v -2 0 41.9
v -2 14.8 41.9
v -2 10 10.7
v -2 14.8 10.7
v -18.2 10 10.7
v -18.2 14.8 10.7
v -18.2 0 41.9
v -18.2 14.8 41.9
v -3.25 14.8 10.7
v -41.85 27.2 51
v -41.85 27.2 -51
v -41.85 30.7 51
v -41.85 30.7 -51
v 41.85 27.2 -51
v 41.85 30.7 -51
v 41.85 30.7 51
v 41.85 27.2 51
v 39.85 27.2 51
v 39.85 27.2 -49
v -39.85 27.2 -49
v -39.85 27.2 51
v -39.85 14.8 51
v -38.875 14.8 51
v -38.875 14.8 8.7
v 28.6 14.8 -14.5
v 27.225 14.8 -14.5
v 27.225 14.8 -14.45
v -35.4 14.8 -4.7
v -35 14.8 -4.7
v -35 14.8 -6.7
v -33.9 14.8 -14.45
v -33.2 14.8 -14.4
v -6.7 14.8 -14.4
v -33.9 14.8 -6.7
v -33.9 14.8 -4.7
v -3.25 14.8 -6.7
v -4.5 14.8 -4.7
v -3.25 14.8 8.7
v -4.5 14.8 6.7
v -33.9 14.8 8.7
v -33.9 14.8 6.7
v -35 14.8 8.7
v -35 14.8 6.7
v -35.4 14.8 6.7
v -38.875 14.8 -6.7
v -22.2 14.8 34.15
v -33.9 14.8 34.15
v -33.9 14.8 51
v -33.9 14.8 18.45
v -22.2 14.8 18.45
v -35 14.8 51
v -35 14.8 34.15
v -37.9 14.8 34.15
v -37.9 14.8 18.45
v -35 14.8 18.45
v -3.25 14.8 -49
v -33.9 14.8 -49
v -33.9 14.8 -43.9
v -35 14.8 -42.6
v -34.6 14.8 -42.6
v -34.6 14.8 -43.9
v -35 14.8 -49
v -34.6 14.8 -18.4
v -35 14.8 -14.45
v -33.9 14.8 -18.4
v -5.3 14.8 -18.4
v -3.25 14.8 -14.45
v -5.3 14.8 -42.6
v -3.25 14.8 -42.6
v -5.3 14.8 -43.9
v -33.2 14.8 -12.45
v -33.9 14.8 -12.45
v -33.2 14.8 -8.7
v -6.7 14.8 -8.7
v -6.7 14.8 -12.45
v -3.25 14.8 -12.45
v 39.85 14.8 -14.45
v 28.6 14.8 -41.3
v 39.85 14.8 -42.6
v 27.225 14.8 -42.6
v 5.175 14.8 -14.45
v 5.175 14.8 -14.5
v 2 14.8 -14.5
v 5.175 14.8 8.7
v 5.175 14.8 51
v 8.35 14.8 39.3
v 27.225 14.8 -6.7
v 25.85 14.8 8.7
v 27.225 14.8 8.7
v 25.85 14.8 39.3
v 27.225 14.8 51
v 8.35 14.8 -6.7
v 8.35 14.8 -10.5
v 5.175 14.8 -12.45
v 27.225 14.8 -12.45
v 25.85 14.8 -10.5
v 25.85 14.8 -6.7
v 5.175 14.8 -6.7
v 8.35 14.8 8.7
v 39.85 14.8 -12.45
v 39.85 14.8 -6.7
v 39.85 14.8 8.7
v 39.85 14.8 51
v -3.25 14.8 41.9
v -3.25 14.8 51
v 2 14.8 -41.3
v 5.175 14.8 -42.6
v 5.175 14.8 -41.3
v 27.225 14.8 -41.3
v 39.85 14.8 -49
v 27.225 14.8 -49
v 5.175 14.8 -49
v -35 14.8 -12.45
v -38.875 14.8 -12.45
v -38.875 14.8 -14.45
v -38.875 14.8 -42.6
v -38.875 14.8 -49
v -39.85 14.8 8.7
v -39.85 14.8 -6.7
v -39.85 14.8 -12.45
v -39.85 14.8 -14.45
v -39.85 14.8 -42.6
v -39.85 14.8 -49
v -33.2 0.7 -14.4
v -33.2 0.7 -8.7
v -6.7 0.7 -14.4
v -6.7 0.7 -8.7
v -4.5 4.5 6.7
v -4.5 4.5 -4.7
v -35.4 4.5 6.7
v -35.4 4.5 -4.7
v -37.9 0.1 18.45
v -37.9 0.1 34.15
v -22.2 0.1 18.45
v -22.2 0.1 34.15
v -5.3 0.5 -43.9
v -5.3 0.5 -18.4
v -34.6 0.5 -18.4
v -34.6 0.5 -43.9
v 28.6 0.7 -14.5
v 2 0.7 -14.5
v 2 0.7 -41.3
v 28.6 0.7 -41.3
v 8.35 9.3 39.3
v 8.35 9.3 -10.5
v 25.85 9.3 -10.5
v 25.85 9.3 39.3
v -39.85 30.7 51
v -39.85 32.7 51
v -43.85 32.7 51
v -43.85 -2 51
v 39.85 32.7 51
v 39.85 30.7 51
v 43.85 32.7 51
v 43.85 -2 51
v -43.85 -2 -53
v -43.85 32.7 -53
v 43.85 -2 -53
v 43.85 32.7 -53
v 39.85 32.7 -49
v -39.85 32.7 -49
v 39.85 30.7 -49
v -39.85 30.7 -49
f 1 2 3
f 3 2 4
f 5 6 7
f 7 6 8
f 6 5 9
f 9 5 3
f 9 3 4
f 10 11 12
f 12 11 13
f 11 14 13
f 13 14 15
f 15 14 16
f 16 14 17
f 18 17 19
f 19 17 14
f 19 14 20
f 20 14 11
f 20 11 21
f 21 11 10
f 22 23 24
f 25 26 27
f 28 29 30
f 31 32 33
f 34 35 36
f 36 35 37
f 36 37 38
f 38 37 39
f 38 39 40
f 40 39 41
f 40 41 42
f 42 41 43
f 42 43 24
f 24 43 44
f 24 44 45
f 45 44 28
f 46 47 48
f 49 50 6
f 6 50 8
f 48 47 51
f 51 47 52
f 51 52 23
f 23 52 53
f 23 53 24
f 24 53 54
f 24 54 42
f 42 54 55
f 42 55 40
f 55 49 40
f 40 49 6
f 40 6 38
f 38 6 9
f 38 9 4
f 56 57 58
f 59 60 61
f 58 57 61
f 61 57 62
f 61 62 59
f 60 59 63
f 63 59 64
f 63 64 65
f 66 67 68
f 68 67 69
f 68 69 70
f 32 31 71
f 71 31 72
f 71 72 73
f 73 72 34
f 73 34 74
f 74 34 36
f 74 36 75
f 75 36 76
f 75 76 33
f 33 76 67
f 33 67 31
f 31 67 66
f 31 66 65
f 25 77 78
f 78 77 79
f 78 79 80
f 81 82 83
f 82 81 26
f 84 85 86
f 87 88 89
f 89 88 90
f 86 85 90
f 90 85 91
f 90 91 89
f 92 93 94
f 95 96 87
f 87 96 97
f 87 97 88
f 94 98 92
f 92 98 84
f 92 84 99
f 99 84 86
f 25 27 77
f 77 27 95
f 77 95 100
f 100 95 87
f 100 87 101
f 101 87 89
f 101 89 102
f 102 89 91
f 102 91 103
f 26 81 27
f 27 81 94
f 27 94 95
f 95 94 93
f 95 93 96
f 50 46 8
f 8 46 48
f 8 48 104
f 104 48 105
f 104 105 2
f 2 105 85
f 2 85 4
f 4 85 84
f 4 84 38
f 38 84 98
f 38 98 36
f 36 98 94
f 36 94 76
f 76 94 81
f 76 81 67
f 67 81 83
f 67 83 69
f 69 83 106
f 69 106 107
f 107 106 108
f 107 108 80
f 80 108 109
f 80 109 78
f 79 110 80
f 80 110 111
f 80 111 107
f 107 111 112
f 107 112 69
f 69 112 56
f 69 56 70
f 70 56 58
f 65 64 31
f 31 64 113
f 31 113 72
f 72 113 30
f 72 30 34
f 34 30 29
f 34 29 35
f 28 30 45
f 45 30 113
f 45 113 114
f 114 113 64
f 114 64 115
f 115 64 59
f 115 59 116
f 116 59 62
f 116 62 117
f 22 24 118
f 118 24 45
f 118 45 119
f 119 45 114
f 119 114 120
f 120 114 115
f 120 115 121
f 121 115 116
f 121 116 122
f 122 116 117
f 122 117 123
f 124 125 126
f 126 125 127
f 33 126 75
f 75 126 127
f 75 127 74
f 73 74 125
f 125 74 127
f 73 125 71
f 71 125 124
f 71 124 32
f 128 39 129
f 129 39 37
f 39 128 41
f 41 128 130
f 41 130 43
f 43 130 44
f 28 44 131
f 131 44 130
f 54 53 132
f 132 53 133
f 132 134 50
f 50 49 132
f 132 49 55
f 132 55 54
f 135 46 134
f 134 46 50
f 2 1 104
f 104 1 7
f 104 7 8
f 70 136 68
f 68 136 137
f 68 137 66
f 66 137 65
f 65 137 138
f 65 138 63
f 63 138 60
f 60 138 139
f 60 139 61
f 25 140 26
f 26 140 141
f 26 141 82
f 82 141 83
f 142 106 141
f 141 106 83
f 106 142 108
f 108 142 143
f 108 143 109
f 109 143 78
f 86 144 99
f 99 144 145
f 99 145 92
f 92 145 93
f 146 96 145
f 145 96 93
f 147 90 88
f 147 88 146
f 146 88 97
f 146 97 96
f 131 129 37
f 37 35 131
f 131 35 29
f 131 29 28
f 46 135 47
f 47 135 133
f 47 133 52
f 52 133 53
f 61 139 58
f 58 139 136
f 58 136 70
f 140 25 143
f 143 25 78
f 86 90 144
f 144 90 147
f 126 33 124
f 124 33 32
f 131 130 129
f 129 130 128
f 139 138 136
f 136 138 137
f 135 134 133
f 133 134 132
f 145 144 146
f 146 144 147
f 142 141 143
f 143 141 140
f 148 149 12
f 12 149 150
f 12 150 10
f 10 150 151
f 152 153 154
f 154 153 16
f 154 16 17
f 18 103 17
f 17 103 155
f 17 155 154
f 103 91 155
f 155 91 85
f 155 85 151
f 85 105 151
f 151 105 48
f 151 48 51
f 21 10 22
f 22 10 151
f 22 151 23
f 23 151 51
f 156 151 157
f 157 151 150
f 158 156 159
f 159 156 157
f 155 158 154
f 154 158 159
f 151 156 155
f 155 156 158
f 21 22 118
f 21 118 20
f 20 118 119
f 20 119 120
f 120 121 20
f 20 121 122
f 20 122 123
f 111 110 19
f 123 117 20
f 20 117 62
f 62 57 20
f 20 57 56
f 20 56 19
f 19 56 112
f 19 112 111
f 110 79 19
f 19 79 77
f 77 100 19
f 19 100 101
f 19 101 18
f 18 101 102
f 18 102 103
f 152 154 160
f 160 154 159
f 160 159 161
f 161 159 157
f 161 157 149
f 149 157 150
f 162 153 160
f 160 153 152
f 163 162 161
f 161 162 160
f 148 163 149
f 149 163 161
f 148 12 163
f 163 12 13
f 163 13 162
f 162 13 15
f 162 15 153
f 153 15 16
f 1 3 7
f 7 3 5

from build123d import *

# Parameters (mm, degrees)
SKETCH1_W            = 26.5
SKETCH1_H            = 5.7
BOSS_EXTRUDE1_DEPTH  = 0.7
SKETCH1_3_W          = 30.9
SKETCH1_3_H          = 11.4
BOSS_EXTRUDE2_DEPTH  = 4.5
SKETCH1_4_W          = 29.3
SKETCH1_4_H          = 25.5
BOSS_EXTRUDE3_DEPTH  = 0.5
SKETCH1_5_W          = 15.7
SKETCH1_5_H          = 15.7
BOSS_EXTRUDE4_DEPTH  = 0.1
SKETCH1_7_W          = 17.5
SKETCH1_7_H          = 49.8
BOSS_EXTRUDE6_DEPTH  = 9.3
SKETCH1_8_W          = 26.6
SKETCH1_8_H          = 26.8
BOSS_EXTRUDE7_DEPTH  = 0.7
SKETCH1_10_W         = 83.7
SKETCH1_10_H         = 100
SKETCH1_10_W_2       = 29.3
SKETCH1_10_H_2       = 25.5
SKETCH1_10_W_3       = 26.5
SKETCH1_10_H_3       = 5.7
SKETCH1_10_W_4       = 30.9
SKETCH1_10_H_4       = 11.4
SKETCH1_10_W_5       = 16.2
SKETCH1_10_H_5       = 31.2
SKETCH1_10_W_6       = 15.7
SKETCH1_10_H_6       = 15.7
SKETCH1_10_W_7       = 26.6
SKETCH1_10_H_7       = 26.8
SKETCH1_10_W_8       = 17.5
SKETCH1_10_H_8       = 49.8
BOSS_EXTRUDE8_DEPTH  = 14.8
BOSS_EXTRUDE9_DEPTH  = 2
SKETCH1_12_W         = 83.7
SKETCH1_12_H         = 2
BOSS_EXTRUDE10_DEPTH = 2
BOSS_EXTRUDE11_DEPTH = 27.2
SKETCH1_14_W         = 83.7
SKETCH1_14_H         = 2
BOSS_EXTRUDE12_DEPTH = 14.8
BOSS_EXTRUDE13_DEPTH = 12.4
BOSS_EXTRUDE14_DEPTH = 32.7
BOSS_EXTRUDE15_DEPTH = 2
BOSS_EXTRUDE16_DEPTH = 16.2


with BuildPart() as part:
    # Sketch1 → Boss-Extrude1 (new body)
    with BuildSketch(Plane(origin=(0, 0, 0), x_dir=(1, 0, 0), z_dir=(0, 1, 0))):
        with Locations((-19.95, 11.55)):
            Rectangle(SKETCH1_W, SKETCH1_H)
    extrude(amount=BOSS_EXTRUDE1_DEPTH)



with BuildPart() as body_2:
    # Sketch1<3> → Boss-Extrude2 (new body)
    with BuildSketch(Plane(origin=(0, 0, 0), x_dir=(1, 0, 0), z_dir=(0, 1, 0))):
        with Locations((-19.95, -1)):
            Rectangle(SKETCH1_3_W, SKETCH1_3_H)
    extrude(amount=BOSS_EXTRUDE2_DEPTH)


with BuildPart() as body_3:
    # Sketch1<4> → Boss-Extrude3 (new body)
    with BuildSketch(Plane(origin=(0, 0, 0), x_dir=(1, 0, 0), z_dir=(0, 1, 0))):
        with Locations((-19.95, 31.15)):
            Rectangle(SKETCH1_4_W, SKETCH1_4_H)
    extrude(amount=BOSS_EXTRUDE3_DEPTH)


with BuildPart() as body_4:
    # Sketch1<5> → Boss-Extrude4 (new body)
    with BuildSketch(Plane(origin=(0, 0, 0), x_dir=(1, 0, 0), z_dir=(0, 1, 0))):
        with Locations((-30.05, -26.3)):
            Rectangle(SKETCH1_5_W, SKETCH1_5_H)
    extrude(amount=BOSS_EXTRUDE4_DEPTH)


with BuildPart() as body_5:
    # Sketch1<7> → Boss-Extrude6 (new body)
    with BuildSketch(Plane(origin=(0, 0, 0), x_dir=(1, 0, 0), z_dir=(0, 1, 0))):
        with Locations((17.1, -14.4)):
            Rectangle(SKETCH1_7_W, SKETCH1_7_H)
    extrude(amount=BOSS_EXTRUDE6_DEPTH)


with BuildPart() as body_6:
    # Sketch1<8> → Boss-Extrude7 (new body)
    with BuildSketch(Plane(origin=(0, 0, 0), x_dir=(1, 0, 0), z_dir=(0, 1, 0))):
        with Locations((15.3, 27.9)):
            Rectangle(SKETCH1_8_W, SKETCH1_8_H)
    extrude(amount=BOSS_EXTRUDE7_DEPTH)


with BuildPart() as part_1:
    add(part.part)

    add(body_2.part)  # Boss-Extrude8 merges body 2

    add(body_3.part)  # Boss-Extrude8 merges body 3

    add(body_4.part)  # Boss-Extrude8 merges body 4

    add(body_5.part)  # Boss-Extrude8 merges body 5

    add(body_6.part)  # Boss-Extrude8 merges body 6
    # Sketch1<10> → Boss-Extrude8 (add)
    with BuildSketch(Plane(origin=(0, 0, 0), x_dir=(1, 0, 0), z_dir=(0, 1, 0))):
        with Locations((0, 1)):
            Rectangle(SKETCH1_10_W, SKETCH1_10_H)
        with Locations((-19.95, 31.15)):
            Rectangle(SKETCH1_10_W_2, SKETCH1_10_H_2, mode=Mode.SUBTRACT)
        with Locations((-19.95, 11.55)):
            Rectangle(SKETCH1_10_W_3, SKETCH1_10_H_3, mode=Mode.SUBTRACT)
        with Locations((-19.95, -1)):
            Rectangle(SKETCH1_10_W_4, SKETCH1_10_H_4, mode=Mode.SUBTRACT)
        with Locations((-10.1, -26.3)):
            Rectangle(SKETCH1_10_W_5, SKETCH1_10_H_5, mode=Mode.SUBTRACT)
        with Locations((-30.05, -26.3)):
            Rectangle(SKETCH1_10_W_6, SKETCH1_10_H_6, mode=Mode.SUBTRACT)
        with Locations((15.3, 27.9)):
            Rectangle(SKETCH1_10_W_7, SKETCH1_10_H_7, mode=Mode.SUBTRACT)
        with Locations((17.1, -14.4)):
            Rectangle(SKETCH1_10_W_8, SKETCH1_10_H_8, mode=Mode.SUBTRACT)
    extrude(amount=BOSS_EXTRUDE8_DEPTH)

    # Sketch1<11> → Boss-Extrude9 (add)
    with BuildSketch(Plane(origin=(0, 0, 0), x_dir=(1, 0, 0), z_dir=(0, 1, 0))):
        Polygon((-43.85, -51), (-41.85, -51), (-41.85, -49), (41.85, -49), (41.85, -51), (43.85, -51), (43.85, 53), (-43.85, 53), align=None)
    extrude(amount=-BOSS_EXTRUDE9_DEPTH)

    # Sketch1<12> → Boss-Extrude10 (add)
    with BuildSketch(Plane(origin=(0, 0, 0), x_dir=(1, 0, 0), z_dir=(0, 1, 0))):
        with Locations((0, -50)):
            Rectangle(SKETCH1_12_W, SKETCH1_12_H)
    extrude(amount=-BOSS_EXTRUDE10_DEPTH)

    # Sketch1<13> → Boss-Extrude11 (add)
    with BuildSketch(Plane(origin=(0, 0, 0), x_dir=(1, 0, 0), z_dir=(0, 1, 0))):
        Polygon((-43.85, -51), (-41.85, -51), (-41.85, -49), (-41.85, 51), (-2, 51), (2, 51), (41.85, 51), (41.85, -49), (41.85, -51), (43.85, -51), (43.85, 53), (-43.85, 53), align=None)
    extrude(amount=BOSS_EXTRUDE11_DEPTH)

    # Sketch1<14> → Boss-Extrude12 (add)
    with BuildSketch(Plane(origin=(0, 0, 0), x_dir=(1, 0, 0), z_dir=(0, 1, 0))):
        with Locations((0, -50)):
            Rectangle(SKETCH1_14_W, SKETCH1_14_H)
    extrude(amount=BOSS_EXTRUDE12_DEPTH)

    # Sketch2 → Boss-Extrude13 (add)
    with BuildSketch(Plane(origin=(0, 14.8, 0), x_dir=(1, 0, 0), z_dir=(0, 1, 0))):
        Polygon((-39.85, -51), (-39.85, 49), (39.85, 49), (39.85, -51), (41.85, -51), (41.85, 51), (-41.85, 51), (-41.85, -51), align=None)
    extrude(amount=BOSS_EXTRUDE13_DEPTH)

    # Sketch1<15> → Boss-Extrude14 (add)
    with BuildSketch(Plane(origin=(0, 0, 0), x_dir=(1, 0, 0), z_dir=(0, 1, 0))):
        Polygon((-43.85, -51), (-41.85, -51), (-41.85, -49), (-41.85, 51), (-2, 51), (2, 51), (41.85, 51), (41.85, -49), (41.85, -51), (43.85, -51), (43.85, 53), (-43.85, 53), align=None)
    extrude(amount=BOSS_EXTRUDE14_DEPTH)

    # Sketch3 → Boss-Extrude15 (add)
    with BuildSketch(Plane(origin=(0, 32.7, 0), x_dir=(1, 0, 0), z_dir=(0, 1, 0))):
        Polygon((-41.85, -51), (-39.85, -51), (-39.85, 49), (39.85, 49), (39.85, -51), (41.85, -51), (41.85, 51), (-41.85, 51), align=None)
    extrude(amount=-BOSS_EXTRUDE15_DEPTH)

    # Sketch4 → Boss-Extrude16 (add)
    with BuildSketch(Plane(origin=(-18.2, 0, 0), x_dir=(0, 0, -1), z_dir=(1, 0, 0))):
        Polygon((-10.7, 10), (-10.7, 0), (-41.9, 0), align=None)
    extrude(amount=BOSS_EXTRUDE16_DEPTH)


solid = part_1.part
